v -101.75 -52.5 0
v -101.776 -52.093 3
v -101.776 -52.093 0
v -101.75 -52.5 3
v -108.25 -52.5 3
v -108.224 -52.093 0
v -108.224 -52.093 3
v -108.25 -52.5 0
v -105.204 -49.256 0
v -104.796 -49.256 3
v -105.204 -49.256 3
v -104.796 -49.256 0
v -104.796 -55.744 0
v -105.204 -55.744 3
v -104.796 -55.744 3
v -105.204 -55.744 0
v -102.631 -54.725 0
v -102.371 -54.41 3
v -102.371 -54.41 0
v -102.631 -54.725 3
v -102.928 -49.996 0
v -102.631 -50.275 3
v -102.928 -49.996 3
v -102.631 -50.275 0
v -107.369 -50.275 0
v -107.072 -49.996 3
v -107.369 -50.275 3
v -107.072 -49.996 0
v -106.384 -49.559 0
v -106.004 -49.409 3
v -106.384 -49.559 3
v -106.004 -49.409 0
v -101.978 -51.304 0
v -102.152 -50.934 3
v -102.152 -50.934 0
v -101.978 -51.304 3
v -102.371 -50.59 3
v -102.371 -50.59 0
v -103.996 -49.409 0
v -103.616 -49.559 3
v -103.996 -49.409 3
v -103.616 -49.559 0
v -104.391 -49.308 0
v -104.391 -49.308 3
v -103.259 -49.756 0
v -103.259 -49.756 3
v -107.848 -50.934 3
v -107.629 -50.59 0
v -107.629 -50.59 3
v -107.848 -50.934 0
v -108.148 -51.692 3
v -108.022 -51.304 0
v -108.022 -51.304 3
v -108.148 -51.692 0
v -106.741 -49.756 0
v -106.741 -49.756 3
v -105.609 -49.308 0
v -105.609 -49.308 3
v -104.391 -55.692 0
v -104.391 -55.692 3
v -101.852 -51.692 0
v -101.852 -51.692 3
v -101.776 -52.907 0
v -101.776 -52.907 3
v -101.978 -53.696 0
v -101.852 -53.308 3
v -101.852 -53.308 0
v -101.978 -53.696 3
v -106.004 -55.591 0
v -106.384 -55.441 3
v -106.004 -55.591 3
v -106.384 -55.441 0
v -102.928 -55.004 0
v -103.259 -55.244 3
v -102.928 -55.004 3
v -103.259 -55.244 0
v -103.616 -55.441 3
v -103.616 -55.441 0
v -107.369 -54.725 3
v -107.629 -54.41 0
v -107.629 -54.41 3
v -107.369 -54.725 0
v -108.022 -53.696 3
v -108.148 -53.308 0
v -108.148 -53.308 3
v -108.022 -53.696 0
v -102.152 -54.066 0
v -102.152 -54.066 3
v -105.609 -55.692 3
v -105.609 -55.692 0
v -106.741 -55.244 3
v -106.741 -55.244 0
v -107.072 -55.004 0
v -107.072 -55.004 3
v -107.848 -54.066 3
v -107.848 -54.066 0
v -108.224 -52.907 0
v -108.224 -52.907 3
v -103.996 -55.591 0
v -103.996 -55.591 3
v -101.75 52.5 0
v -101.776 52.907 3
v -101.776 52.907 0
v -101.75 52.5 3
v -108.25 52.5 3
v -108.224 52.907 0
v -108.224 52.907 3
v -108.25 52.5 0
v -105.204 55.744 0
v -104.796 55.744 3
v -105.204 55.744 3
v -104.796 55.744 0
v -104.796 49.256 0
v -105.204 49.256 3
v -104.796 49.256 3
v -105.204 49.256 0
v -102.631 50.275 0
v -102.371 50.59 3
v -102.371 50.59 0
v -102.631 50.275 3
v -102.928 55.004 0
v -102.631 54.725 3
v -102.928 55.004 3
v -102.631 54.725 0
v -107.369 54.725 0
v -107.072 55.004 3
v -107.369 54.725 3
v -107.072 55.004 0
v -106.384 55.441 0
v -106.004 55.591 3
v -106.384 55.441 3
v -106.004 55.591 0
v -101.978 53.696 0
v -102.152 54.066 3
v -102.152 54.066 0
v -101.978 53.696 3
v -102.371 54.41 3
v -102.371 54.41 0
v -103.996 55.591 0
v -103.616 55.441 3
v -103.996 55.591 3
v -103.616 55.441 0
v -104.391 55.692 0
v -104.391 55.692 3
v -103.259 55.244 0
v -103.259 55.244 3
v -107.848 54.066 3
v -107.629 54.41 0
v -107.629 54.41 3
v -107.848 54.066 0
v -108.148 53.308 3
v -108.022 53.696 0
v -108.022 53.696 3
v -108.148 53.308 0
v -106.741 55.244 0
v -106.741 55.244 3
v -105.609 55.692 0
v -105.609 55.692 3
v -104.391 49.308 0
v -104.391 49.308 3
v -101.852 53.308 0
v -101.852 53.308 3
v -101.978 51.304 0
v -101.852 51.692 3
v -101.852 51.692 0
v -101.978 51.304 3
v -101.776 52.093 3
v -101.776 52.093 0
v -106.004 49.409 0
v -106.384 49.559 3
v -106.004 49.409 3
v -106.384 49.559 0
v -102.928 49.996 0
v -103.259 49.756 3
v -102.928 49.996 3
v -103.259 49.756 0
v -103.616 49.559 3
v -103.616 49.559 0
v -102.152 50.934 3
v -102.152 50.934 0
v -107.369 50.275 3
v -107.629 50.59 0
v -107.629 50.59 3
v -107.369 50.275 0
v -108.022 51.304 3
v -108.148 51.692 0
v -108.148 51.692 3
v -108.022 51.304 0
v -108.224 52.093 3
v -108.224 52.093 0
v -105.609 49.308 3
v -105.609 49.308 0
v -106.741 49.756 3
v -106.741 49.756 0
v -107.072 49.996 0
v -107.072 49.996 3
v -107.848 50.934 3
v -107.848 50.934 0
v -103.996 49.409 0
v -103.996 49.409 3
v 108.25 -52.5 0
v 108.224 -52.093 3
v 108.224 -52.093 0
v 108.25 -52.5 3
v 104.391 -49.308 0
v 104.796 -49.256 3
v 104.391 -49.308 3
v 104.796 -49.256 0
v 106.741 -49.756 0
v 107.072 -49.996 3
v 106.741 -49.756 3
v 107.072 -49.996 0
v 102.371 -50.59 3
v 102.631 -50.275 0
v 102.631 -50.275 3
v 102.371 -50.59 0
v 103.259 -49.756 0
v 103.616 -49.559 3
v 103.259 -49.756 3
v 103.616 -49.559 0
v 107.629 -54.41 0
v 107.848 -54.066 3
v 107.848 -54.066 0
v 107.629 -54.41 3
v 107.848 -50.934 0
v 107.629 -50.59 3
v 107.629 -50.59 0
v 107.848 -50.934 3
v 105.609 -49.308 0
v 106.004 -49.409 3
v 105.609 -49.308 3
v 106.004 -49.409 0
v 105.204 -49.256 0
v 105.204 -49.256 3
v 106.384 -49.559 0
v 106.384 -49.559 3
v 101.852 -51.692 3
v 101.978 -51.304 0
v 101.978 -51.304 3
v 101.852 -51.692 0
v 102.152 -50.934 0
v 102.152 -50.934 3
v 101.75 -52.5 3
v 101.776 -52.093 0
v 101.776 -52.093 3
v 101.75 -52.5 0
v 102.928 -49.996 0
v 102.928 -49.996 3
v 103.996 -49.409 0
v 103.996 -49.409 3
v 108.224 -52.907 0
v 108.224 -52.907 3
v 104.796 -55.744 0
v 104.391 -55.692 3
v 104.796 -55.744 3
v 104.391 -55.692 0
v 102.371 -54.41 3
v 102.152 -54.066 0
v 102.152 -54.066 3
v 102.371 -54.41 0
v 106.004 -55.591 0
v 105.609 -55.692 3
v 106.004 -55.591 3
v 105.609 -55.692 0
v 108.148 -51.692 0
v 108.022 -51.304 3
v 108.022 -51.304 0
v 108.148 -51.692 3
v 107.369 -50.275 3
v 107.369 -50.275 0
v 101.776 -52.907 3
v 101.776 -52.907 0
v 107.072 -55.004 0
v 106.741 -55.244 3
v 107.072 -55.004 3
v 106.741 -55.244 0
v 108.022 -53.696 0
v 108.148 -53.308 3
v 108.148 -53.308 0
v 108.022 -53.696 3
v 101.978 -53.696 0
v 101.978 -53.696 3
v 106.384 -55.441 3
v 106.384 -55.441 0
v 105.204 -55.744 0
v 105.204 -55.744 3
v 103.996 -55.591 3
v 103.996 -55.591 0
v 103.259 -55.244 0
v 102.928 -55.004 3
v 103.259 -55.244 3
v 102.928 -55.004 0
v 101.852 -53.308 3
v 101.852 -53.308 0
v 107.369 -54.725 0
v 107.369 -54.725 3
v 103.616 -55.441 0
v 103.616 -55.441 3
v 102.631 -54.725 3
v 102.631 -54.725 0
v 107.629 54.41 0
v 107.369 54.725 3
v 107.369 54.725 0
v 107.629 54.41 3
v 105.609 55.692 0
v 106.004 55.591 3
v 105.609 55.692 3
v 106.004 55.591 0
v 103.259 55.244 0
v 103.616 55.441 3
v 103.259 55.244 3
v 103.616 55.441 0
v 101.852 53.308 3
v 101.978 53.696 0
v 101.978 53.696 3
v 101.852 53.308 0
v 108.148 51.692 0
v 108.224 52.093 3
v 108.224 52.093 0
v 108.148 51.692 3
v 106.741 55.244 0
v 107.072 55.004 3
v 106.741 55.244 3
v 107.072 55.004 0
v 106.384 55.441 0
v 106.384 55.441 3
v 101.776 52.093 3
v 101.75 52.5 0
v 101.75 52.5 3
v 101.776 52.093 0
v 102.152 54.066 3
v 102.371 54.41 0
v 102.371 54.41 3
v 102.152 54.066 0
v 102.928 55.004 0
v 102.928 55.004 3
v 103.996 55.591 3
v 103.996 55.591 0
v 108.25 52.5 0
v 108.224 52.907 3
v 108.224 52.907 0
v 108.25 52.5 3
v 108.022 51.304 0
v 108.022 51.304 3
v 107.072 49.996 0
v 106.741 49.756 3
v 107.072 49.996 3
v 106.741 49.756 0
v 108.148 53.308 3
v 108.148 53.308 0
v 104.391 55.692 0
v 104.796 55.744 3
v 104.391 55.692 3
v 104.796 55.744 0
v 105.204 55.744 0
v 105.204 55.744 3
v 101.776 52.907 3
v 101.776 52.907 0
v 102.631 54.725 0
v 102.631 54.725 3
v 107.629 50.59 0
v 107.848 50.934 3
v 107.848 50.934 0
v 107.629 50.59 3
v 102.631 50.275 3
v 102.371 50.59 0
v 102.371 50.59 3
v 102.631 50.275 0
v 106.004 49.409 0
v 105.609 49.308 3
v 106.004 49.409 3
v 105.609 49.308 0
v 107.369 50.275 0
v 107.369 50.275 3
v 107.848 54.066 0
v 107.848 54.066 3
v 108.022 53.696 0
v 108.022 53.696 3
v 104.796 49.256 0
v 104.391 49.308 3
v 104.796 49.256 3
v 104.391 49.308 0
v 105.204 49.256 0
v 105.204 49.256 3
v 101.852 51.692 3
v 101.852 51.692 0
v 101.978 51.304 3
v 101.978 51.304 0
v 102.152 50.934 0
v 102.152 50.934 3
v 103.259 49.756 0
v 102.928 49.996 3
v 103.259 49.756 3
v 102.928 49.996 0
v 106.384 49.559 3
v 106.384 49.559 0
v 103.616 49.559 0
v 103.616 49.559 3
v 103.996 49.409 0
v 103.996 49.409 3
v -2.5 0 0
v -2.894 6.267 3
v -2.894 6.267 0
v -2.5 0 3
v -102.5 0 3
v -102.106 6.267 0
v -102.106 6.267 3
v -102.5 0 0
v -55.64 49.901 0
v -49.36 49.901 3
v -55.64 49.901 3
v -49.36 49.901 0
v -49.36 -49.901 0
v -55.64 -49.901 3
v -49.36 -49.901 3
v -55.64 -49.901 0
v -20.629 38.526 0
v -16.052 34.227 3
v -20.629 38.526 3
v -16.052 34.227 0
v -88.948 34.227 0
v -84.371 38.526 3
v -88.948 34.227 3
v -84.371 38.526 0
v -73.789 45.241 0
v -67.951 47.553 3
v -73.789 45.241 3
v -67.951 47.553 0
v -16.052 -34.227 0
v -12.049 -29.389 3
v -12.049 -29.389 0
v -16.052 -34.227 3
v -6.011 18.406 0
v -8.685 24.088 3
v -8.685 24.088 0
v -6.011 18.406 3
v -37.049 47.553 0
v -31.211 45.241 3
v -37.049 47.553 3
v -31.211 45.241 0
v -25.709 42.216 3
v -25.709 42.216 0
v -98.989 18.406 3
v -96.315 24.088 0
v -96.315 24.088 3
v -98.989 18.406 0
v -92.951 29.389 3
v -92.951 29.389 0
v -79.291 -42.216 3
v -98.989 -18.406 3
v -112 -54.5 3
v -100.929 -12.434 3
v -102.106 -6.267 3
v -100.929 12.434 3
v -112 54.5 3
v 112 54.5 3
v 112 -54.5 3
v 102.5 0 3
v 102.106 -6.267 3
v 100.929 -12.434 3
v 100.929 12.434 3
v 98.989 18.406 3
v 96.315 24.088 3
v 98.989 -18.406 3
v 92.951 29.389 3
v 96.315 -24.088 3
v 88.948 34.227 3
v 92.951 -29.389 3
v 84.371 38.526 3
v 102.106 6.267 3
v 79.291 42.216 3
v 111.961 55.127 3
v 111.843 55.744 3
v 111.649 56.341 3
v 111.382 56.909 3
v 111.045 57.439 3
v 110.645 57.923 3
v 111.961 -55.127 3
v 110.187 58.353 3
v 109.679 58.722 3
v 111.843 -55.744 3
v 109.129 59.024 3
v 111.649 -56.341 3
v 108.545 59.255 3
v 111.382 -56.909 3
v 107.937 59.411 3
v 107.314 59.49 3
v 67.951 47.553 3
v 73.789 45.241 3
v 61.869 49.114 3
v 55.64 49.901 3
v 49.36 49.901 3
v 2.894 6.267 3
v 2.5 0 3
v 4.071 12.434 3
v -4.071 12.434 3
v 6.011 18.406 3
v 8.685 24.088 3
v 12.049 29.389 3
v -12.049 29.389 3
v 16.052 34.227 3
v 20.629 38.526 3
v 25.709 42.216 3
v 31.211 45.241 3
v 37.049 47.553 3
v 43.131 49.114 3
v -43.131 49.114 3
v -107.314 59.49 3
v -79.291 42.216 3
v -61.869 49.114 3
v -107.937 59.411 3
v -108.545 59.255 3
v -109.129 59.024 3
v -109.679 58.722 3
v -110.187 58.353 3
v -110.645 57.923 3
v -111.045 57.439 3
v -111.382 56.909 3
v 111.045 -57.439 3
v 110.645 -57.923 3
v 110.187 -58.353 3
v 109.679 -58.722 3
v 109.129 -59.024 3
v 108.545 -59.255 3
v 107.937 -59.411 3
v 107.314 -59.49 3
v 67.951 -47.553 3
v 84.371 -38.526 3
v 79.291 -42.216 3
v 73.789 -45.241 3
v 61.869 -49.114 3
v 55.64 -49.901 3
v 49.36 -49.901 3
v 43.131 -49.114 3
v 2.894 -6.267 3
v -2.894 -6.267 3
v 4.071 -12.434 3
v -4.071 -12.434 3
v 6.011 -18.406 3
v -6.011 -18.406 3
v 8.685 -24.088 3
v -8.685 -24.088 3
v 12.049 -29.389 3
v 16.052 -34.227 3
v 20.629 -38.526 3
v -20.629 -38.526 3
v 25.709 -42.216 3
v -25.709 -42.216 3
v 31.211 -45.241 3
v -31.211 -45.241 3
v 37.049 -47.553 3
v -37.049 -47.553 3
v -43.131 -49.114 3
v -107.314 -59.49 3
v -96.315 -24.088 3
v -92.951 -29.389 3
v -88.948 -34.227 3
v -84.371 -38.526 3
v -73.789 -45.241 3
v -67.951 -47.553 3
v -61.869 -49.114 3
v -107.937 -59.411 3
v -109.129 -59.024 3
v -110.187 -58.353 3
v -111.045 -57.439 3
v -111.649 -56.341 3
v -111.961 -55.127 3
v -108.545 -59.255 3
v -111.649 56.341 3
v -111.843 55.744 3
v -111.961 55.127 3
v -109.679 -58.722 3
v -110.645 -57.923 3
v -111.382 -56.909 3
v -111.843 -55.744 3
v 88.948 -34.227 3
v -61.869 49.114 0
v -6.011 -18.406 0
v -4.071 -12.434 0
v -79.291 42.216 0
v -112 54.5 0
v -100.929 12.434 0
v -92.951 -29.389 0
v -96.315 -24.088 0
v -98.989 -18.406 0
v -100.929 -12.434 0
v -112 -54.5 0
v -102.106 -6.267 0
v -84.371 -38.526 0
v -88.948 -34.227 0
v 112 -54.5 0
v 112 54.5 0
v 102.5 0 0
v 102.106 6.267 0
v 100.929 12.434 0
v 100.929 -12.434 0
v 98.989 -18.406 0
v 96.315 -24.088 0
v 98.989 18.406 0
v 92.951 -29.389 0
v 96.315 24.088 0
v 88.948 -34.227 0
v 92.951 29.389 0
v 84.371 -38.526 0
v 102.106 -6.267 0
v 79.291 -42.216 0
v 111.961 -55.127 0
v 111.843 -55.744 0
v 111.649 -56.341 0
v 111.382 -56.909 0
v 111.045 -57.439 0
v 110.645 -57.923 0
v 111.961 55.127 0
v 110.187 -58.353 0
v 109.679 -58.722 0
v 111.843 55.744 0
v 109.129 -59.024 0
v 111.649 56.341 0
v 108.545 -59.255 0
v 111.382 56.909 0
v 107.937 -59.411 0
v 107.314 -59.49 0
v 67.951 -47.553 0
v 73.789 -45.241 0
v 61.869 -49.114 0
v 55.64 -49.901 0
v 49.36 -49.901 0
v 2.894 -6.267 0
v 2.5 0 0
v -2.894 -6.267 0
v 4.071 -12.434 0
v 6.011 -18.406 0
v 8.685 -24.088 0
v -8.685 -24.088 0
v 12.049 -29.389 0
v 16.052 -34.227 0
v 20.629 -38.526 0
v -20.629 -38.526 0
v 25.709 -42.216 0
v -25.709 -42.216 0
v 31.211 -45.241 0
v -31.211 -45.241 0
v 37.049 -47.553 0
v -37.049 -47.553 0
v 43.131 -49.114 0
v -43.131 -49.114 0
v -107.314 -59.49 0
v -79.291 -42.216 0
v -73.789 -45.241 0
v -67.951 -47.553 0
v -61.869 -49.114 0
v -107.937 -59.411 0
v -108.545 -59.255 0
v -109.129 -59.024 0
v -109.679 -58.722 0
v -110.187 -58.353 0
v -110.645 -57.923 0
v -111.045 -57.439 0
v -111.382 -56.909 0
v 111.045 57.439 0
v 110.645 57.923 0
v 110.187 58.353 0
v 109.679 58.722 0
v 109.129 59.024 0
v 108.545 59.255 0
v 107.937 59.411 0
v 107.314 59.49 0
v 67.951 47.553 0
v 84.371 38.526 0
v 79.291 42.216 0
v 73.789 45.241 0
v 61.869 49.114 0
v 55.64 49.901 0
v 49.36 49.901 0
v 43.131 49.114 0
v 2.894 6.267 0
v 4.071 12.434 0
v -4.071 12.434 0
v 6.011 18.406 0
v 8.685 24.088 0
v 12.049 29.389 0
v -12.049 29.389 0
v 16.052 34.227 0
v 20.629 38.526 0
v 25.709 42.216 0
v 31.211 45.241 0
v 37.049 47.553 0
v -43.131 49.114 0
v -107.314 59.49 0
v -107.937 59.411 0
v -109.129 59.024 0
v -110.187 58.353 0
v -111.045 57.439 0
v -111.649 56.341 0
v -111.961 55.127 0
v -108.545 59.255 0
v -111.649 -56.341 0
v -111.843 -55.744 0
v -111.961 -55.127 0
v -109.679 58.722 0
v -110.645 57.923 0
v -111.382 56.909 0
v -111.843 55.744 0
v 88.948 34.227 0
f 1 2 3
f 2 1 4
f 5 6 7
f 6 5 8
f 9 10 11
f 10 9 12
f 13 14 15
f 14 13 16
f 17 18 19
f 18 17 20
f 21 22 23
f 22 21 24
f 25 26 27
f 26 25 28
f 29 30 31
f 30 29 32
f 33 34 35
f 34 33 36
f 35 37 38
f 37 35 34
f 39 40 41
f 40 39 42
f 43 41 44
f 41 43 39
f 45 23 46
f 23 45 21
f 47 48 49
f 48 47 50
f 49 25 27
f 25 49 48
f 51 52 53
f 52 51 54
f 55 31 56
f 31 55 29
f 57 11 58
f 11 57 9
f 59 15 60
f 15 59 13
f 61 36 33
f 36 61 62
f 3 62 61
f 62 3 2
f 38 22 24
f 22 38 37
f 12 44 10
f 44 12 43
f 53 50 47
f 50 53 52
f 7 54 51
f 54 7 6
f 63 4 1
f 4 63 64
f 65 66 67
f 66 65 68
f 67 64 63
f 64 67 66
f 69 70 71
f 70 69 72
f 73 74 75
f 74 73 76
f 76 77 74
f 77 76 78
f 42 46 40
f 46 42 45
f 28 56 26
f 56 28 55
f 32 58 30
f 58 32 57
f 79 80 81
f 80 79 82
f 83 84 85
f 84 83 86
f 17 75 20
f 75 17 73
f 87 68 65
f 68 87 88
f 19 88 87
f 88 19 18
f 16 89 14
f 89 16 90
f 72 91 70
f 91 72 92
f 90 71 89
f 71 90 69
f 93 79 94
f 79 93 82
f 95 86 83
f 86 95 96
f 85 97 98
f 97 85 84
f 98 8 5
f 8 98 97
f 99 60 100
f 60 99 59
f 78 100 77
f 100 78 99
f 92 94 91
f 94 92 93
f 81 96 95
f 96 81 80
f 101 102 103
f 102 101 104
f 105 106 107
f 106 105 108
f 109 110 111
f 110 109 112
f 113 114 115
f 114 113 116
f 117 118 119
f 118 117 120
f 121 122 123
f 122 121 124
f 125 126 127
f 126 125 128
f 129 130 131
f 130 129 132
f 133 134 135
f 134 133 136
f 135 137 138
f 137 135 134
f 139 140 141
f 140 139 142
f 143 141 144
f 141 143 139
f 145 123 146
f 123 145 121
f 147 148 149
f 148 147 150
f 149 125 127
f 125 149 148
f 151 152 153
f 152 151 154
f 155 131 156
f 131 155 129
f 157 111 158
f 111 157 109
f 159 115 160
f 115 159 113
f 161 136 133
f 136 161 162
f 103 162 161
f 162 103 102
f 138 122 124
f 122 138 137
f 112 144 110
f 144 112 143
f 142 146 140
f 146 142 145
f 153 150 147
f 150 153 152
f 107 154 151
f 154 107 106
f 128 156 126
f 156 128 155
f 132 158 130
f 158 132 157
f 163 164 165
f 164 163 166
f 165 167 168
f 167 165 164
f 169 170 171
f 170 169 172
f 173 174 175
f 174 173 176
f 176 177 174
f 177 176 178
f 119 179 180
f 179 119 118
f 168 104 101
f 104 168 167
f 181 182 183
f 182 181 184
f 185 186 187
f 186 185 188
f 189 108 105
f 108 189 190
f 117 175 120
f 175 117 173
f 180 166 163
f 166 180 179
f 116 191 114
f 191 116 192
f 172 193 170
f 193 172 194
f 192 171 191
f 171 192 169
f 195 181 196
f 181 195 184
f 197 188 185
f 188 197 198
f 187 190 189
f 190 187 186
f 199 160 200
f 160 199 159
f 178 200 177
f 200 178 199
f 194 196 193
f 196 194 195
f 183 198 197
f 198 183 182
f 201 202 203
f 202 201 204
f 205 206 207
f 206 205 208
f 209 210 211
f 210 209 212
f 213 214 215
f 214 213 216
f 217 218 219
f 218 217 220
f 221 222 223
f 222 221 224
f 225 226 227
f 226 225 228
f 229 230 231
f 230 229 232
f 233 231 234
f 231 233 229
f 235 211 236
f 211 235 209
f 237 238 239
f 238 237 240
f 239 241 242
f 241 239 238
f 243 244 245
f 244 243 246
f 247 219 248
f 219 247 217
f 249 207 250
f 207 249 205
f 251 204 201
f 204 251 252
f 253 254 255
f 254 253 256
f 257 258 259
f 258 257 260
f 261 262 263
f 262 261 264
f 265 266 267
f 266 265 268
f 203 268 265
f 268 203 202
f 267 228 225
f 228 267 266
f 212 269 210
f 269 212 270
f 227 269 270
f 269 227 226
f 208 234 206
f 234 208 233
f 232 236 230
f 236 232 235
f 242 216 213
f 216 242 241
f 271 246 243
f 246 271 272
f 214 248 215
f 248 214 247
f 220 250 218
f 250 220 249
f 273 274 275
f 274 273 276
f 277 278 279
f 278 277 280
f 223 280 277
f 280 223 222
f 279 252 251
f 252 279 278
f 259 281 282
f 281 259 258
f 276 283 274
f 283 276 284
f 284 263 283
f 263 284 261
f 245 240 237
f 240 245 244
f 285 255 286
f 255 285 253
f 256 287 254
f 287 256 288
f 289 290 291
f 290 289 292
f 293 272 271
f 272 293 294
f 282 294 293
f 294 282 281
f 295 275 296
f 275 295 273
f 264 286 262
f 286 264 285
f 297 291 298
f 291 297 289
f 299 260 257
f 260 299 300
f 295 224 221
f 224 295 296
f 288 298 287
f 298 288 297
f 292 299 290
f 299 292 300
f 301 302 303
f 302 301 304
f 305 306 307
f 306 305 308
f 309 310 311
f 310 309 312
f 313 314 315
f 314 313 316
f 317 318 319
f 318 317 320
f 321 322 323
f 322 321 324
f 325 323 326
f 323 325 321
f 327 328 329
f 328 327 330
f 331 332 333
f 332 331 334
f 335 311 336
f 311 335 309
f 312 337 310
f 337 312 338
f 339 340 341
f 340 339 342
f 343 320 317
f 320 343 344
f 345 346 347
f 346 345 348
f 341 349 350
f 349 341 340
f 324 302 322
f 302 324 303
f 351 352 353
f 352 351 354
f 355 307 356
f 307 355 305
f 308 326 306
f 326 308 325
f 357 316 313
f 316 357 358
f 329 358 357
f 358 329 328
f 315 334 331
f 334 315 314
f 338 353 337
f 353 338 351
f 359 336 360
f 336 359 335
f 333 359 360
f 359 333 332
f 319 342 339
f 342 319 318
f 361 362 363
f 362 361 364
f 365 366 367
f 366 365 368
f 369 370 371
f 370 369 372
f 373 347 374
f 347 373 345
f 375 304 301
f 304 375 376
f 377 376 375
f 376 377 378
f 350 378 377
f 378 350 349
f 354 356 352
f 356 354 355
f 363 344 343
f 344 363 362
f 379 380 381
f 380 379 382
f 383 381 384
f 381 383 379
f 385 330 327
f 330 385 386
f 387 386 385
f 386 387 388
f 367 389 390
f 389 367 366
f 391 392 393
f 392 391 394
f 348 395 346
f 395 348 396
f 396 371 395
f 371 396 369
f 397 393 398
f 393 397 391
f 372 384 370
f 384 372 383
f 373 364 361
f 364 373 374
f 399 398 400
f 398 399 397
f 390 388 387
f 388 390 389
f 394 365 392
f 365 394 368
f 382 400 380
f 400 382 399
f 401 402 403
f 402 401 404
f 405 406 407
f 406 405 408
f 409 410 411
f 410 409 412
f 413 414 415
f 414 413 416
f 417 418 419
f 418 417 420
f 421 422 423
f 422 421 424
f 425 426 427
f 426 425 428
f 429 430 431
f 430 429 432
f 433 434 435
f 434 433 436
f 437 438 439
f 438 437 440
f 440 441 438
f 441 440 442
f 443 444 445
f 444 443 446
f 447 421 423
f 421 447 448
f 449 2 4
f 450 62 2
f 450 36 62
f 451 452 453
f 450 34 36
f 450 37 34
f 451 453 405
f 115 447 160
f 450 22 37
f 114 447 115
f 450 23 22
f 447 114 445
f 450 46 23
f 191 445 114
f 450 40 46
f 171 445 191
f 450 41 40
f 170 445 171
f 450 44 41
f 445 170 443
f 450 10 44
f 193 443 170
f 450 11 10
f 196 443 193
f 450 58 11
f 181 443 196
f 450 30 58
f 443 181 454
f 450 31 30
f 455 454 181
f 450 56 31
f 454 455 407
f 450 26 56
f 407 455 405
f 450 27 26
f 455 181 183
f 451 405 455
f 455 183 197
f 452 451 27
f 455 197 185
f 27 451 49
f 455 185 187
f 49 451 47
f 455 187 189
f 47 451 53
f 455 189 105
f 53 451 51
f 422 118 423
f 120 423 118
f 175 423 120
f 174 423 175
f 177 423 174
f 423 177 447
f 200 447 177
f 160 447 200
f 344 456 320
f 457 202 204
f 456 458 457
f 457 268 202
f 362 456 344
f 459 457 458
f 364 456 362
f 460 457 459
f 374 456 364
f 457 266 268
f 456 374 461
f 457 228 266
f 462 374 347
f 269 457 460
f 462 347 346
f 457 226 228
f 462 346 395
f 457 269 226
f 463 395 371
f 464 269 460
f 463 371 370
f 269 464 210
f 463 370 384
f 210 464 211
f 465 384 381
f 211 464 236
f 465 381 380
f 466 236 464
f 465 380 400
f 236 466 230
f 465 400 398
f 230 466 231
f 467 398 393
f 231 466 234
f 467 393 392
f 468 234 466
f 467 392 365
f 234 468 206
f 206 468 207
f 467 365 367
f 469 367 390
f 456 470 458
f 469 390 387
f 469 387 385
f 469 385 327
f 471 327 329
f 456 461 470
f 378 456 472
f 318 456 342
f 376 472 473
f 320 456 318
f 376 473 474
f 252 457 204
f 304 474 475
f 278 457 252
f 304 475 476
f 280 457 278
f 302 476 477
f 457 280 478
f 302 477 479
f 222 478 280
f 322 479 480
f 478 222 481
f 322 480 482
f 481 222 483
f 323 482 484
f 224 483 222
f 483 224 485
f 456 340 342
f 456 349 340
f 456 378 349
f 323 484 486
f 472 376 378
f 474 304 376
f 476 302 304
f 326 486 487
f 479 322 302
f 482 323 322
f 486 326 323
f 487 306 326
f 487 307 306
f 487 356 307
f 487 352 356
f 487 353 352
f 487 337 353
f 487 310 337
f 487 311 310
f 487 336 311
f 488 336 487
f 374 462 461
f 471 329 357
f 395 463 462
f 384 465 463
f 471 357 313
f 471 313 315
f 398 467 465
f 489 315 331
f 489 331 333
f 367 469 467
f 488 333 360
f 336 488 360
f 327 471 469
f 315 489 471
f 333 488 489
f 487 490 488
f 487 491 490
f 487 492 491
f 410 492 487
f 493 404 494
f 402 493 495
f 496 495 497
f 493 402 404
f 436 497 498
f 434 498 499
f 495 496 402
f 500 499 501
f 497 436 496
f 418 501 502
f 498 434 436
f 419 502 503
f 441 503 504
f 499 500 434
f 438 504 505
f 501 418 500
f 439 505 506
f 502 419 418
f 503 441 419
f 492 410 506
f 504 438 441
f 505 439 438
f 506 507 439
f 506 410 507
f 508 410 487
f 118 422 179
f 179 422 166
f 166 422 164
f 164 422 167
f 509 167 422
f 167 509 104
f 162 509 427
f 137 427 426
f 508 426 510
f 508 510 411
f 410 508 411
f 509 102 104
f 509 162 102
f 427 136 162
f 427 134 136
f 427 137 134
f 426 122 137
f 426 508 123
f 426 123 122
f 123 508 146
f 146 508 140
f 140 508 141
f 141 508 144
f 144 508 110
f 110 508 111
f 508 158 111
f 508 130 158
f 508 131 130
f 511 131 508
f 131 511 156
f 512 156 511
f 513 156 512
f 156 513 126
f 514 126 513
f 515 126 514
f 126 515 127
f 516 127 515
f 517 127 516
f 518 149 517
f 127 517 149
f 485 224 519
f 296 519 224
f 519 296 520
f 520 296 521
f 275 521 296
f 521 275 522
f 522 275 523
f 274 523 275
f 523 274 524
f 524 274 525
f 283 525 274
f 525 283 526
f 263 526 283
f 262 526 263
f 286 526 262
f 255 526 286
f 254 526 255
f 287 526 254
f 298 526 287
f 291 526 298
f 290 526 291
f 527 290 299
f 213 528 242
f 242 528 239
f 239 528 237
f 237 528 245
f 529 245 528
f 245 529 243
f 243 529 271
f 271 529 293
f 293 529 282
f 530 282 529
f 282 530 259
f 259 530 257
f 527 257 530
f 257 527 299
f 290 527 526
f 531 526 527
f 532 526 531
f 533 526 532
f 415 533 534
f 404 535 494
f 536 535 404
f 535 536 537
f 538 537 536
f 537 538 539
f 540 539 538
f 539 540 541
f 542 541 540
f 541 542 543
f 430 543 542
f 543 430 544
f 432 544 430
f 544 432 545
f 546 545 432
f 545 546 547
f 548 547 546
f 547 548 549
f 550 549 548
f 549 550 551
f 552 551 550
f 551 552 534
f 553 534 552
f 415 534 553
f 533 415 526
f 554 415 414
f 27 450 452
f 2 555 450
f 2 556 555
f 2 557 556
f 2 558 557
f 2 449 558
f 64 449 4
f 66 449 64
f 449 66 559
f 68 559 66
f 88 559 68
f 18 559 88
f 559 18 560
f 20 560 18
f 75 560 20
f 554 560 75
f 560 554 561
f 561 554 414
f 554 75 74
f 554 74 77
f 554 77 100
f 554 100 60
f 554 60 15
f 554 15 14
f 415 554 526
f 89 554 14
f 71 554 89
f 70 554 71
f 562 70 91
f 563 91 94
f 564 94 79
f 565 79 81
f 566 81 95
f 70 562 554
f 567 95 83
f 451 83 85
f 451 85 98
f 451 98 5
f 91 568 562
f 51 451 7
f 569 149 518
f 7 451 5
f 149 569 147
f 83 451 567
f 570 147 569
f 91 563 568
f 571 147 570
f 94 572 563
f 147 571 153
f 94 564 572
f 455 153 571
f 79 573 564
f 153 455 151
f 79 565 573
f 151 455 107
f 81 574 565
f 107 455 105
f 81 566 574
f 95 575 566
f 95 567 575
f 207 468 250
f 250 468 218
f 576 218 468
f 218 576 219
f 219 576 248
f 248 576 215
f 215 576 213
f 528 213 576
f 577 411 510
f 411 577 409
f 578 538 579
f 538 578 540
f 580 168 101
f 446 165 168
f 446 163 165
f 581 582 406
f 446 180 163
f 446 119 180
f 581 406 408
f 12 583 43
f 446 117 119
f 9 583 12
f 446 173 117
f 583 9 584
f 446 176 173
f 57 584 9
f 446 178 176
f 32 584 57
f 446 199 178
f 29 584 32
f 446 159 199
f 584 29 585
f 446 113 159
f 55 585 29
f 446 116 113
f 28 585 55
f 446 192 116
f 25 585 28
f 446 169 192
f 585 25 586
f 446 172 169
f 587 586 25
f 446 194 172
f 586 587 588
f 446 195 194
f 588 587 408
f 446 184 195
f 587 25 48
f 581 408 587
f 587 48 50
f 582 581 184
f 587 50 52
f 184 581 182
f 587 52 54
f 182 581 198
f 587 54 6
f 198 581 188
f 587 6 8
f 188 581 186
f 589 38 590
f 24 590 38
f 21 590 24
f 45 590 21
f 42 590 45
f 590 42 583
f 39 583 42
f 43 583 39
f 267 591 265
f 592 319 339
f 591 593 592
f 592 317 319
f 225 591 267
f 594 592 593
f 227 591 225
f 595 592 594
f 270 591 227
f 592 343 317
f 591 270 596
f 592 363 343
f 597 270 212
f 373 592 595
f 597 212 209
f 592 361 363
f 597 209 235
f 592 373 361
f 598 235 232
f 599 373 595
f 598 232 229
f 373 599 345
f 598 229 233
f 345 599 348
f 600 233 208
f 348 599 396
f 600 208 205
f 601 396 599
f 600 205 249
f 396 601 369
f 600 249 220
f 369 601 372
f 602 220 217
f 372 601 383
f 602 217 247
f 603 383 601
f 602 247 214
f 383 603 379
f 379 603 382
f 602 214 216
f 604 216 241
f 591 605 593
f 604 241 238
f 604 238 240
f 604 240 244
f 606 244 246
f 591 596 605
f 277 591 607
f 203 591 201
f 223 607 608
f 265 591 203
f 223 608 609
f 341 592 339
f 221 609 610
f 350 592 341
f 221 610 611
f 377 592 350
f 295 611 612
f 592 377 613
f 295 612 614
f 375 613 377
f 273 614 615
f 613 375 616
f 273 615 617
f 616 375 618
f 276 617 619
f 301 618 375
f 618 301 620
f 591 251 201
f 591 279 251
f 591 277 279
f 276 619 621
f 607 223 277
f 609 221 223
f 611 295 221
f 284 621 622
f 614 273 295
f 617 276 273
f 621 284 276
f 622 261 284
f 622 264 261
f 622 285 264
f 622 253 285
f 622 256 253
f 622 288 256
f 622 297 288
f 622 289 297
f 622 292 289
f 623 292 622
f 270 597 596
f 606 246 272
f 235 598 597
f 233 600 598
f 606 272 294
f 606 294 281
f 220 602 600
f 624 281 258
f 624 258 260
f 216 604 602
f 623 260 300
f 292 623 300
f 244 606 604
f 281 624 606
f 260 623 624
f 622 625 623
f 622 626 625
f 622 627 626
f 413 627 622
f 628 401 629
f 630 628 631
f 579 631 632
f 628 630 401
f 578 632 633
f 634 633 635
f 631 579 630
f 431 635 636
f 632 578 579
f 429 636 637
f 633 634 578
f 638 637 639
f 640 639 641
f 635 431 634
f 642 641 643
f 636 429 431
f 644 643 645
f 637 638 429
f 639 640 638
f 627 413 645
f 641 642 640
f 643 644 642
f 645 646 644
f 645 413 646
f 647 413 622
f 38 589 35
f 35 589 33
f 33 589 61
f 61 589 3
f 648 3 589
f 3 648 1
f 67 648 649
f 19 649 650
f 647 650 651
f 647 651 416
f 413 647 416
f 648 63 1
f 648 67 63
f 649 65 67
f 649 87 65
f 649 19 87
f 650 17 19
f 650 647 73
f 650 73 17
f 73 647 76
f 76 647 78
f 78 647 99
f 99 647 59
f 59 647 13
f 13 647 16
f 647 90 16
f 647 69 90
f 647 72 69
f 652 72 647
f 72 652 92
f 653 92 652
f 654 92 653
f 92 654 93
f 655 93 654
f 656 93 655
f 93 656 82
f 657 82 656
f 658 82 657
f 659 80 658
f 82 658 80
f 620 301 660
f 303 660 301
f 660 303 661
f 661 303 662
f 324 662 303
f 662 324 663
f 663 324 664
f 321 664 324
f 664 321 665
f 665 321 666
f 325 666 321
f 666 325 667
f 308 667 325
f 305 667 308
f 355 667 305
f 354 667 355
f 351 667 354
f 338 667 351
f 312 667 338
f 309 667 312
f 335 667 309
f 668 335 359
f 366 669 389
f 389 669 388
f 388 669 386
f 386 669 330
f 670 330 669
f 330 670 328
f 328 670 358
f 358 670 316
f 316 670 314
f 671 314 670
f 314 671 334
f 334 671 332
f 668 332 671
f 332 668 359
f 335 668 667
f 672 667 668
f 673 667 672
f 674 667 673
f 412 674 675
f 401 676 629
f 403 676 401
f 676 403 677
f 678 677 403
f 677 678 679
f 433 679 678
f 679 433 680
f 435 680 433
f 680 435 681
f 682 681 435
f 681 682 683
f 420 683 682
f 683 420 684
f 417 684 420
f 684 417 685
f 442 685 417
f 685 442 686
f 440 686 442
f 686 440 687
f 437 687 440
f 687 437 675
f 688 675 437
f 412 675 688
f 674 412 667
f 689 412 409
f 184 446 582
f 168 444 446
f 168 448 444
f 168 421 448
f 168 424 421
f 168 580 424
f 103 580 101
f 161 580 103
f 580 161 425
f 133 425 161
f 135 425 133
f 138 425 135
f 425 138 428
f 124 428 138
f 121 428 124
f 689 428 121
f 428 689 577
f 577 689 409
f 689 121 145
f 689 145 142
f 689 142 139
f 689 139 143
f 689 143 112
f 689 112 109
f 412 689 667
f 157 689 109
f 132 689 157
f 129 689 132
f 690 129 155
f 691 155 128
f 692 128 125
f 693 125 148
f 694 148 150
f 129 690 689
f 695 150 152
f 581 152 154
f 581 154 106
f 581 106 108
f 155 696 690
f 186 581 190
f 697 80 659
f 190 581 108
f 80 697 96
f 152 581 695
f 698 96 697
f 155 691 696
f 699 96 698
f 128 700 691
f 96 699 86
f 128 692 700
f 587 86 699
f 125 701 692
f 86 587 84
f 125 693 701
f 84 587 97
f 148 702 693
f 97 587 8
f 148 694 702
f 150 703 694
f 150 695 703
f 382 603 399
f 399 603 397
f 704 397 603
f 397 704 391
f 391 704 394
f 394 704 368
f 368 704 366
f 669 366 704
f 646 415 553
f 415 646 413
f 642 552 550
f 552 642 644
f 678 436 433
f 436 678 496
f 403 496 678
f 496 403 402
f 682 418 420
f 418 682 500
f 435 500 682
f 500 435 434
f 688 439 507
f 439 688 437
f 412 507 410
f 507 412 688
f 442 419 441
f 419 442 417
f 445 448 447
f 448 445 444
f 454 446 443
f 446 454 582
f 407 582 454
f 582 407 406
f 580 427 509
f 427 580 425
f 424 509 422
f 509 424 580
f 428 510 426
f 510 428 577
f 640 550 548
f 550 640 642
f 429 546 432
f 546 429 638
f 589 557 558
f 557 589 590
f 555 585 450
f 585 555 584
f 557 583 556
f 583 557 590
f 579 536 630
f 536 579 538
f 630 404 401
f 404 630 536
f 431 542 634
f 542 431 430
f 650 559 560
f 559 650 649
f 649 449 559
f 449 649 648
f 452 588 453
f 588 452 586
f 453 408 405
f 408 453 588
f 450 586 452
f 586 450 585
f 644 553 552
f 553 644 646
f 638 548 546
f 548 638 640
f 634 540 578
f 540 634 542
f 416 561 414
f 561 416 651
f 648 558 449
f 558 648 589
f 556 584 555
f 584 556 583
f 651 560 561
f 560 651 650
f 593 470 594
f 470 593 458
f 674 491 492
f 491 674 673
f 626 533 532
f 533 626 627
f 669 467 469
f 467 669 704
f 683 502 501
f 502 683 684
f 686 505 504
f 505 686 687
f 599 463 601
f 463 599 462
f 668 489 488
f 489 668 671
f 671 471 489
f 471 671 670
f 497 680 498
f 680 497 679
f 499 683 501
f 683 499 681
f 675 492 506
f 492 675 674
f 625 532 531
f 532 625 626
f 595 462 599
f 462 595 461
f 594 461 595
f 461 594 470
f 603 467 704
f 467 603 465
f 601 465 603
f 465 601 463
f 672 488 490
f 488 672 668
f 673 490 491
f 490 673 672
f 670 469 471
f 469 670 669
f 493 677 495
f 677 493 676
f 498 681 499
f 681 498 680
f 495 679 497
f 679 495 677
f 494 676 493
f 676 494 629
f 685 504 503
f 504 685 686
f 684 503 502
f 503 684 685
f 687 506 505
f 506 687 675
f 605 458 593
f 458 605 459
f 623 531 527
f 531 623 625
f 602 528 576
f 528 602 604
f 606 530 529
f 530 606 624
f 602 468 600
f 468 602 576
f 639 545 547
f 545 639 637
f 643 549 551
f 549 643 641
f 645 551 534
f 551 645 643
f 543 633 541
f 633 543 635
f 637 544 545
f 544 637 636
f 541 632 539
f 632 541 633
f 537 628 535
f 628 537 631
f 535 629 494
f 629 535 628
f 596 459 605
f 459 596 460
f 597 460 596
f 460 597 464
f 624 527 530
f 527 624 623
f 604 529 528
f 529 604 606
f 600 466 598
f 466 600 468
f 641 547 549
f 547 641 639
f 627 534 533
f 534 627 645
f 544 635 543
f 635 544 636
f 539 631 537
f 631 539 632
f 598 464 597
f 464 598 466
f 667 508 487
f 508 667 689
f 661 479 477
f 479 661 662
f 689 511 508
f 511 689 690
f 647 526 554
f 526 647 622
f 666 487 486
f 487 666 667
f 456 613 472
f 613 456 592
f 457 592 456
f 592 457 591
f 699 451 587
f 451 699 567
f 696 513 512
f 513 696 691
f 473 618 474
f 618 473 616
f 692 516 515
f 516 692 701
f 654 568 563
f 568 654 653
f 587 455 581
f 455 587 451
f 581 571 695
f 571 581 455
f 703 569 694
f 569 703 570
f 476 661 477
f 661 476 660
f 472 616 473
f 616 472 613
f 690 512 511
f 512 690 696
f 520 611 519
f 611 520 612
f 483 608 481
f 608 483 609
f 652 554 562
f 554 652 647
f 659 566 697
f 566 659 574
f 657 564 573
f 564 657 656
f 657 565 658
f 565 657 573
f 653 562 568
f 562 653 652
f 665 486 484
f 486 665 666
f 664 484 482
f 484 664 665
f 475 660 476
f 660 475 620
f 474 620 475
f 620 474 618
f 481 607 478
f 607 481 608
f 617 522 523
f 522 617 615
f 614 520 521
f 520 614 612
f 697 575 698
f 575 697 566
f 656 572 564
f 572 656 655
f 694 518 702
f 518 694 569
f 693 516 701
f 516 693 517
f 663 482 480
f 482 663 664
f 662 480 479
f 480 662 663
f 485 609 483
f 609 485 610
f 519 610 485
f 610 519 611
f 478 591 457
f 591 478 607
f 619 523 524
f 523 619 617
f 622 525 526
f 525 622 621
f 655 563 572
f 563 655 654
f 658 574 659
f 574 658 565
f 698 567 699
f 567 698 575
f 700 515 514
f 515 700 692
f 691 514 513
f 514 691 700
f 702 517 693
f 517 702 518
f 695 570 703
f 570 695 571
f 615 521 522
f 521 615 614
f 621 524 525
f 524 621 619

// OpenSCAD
$fn = 50;


difference() {
	union() {
		hull() {
			translate(v = [-107.0000000000, 54.5000000000, 0]) {
				cylinder(h = 3, r = 5);
			}
			translate(v = [107.0000000000, 54.5000000000, 0]) {
				cylinder(h = 3, r = 5);
			}
			translate(v = [-107.0000000000, -54.5000000000, 0]) {
				cylinder(h = 3, r = 5);
			}
			translate(v = [107.0000000000, -54.5000000000, 0]) {
				cylinder(h = 3, r = 5);
			}
		}
	}
	union() {
		#translate(v = [-105.0000000000, -52.5000000000, -100.0000000000]) {
			cylinder(h = 200, r = 3.2500000000);
		}
		#translate(v = [-105.0000000000, 52.5000000000, -100.0000000000]) {
			cylinder(h = 200, r = 3.2500000000);
		}
		#translate(v = [105.0000000000, -52.5000000000, -100.0000000000]) {
			cylinder(h = 200, r = 3.2500000000);
		}
		#translate(v = [105.0000000000, 52.5000000000, -100.0000000000]) {
			cylinder(h = 200, r = 3.2500000000);
		}
		#translate(v = [-52.5000000000, 0, 0]) {
			cylinder(h = 3, r = 50.0000000000);
		}
		#translate(v = [52.5000000000, 0, 0]) {
			cylinder(h = 3, r = 50.0000000000);
		}
	}
}
